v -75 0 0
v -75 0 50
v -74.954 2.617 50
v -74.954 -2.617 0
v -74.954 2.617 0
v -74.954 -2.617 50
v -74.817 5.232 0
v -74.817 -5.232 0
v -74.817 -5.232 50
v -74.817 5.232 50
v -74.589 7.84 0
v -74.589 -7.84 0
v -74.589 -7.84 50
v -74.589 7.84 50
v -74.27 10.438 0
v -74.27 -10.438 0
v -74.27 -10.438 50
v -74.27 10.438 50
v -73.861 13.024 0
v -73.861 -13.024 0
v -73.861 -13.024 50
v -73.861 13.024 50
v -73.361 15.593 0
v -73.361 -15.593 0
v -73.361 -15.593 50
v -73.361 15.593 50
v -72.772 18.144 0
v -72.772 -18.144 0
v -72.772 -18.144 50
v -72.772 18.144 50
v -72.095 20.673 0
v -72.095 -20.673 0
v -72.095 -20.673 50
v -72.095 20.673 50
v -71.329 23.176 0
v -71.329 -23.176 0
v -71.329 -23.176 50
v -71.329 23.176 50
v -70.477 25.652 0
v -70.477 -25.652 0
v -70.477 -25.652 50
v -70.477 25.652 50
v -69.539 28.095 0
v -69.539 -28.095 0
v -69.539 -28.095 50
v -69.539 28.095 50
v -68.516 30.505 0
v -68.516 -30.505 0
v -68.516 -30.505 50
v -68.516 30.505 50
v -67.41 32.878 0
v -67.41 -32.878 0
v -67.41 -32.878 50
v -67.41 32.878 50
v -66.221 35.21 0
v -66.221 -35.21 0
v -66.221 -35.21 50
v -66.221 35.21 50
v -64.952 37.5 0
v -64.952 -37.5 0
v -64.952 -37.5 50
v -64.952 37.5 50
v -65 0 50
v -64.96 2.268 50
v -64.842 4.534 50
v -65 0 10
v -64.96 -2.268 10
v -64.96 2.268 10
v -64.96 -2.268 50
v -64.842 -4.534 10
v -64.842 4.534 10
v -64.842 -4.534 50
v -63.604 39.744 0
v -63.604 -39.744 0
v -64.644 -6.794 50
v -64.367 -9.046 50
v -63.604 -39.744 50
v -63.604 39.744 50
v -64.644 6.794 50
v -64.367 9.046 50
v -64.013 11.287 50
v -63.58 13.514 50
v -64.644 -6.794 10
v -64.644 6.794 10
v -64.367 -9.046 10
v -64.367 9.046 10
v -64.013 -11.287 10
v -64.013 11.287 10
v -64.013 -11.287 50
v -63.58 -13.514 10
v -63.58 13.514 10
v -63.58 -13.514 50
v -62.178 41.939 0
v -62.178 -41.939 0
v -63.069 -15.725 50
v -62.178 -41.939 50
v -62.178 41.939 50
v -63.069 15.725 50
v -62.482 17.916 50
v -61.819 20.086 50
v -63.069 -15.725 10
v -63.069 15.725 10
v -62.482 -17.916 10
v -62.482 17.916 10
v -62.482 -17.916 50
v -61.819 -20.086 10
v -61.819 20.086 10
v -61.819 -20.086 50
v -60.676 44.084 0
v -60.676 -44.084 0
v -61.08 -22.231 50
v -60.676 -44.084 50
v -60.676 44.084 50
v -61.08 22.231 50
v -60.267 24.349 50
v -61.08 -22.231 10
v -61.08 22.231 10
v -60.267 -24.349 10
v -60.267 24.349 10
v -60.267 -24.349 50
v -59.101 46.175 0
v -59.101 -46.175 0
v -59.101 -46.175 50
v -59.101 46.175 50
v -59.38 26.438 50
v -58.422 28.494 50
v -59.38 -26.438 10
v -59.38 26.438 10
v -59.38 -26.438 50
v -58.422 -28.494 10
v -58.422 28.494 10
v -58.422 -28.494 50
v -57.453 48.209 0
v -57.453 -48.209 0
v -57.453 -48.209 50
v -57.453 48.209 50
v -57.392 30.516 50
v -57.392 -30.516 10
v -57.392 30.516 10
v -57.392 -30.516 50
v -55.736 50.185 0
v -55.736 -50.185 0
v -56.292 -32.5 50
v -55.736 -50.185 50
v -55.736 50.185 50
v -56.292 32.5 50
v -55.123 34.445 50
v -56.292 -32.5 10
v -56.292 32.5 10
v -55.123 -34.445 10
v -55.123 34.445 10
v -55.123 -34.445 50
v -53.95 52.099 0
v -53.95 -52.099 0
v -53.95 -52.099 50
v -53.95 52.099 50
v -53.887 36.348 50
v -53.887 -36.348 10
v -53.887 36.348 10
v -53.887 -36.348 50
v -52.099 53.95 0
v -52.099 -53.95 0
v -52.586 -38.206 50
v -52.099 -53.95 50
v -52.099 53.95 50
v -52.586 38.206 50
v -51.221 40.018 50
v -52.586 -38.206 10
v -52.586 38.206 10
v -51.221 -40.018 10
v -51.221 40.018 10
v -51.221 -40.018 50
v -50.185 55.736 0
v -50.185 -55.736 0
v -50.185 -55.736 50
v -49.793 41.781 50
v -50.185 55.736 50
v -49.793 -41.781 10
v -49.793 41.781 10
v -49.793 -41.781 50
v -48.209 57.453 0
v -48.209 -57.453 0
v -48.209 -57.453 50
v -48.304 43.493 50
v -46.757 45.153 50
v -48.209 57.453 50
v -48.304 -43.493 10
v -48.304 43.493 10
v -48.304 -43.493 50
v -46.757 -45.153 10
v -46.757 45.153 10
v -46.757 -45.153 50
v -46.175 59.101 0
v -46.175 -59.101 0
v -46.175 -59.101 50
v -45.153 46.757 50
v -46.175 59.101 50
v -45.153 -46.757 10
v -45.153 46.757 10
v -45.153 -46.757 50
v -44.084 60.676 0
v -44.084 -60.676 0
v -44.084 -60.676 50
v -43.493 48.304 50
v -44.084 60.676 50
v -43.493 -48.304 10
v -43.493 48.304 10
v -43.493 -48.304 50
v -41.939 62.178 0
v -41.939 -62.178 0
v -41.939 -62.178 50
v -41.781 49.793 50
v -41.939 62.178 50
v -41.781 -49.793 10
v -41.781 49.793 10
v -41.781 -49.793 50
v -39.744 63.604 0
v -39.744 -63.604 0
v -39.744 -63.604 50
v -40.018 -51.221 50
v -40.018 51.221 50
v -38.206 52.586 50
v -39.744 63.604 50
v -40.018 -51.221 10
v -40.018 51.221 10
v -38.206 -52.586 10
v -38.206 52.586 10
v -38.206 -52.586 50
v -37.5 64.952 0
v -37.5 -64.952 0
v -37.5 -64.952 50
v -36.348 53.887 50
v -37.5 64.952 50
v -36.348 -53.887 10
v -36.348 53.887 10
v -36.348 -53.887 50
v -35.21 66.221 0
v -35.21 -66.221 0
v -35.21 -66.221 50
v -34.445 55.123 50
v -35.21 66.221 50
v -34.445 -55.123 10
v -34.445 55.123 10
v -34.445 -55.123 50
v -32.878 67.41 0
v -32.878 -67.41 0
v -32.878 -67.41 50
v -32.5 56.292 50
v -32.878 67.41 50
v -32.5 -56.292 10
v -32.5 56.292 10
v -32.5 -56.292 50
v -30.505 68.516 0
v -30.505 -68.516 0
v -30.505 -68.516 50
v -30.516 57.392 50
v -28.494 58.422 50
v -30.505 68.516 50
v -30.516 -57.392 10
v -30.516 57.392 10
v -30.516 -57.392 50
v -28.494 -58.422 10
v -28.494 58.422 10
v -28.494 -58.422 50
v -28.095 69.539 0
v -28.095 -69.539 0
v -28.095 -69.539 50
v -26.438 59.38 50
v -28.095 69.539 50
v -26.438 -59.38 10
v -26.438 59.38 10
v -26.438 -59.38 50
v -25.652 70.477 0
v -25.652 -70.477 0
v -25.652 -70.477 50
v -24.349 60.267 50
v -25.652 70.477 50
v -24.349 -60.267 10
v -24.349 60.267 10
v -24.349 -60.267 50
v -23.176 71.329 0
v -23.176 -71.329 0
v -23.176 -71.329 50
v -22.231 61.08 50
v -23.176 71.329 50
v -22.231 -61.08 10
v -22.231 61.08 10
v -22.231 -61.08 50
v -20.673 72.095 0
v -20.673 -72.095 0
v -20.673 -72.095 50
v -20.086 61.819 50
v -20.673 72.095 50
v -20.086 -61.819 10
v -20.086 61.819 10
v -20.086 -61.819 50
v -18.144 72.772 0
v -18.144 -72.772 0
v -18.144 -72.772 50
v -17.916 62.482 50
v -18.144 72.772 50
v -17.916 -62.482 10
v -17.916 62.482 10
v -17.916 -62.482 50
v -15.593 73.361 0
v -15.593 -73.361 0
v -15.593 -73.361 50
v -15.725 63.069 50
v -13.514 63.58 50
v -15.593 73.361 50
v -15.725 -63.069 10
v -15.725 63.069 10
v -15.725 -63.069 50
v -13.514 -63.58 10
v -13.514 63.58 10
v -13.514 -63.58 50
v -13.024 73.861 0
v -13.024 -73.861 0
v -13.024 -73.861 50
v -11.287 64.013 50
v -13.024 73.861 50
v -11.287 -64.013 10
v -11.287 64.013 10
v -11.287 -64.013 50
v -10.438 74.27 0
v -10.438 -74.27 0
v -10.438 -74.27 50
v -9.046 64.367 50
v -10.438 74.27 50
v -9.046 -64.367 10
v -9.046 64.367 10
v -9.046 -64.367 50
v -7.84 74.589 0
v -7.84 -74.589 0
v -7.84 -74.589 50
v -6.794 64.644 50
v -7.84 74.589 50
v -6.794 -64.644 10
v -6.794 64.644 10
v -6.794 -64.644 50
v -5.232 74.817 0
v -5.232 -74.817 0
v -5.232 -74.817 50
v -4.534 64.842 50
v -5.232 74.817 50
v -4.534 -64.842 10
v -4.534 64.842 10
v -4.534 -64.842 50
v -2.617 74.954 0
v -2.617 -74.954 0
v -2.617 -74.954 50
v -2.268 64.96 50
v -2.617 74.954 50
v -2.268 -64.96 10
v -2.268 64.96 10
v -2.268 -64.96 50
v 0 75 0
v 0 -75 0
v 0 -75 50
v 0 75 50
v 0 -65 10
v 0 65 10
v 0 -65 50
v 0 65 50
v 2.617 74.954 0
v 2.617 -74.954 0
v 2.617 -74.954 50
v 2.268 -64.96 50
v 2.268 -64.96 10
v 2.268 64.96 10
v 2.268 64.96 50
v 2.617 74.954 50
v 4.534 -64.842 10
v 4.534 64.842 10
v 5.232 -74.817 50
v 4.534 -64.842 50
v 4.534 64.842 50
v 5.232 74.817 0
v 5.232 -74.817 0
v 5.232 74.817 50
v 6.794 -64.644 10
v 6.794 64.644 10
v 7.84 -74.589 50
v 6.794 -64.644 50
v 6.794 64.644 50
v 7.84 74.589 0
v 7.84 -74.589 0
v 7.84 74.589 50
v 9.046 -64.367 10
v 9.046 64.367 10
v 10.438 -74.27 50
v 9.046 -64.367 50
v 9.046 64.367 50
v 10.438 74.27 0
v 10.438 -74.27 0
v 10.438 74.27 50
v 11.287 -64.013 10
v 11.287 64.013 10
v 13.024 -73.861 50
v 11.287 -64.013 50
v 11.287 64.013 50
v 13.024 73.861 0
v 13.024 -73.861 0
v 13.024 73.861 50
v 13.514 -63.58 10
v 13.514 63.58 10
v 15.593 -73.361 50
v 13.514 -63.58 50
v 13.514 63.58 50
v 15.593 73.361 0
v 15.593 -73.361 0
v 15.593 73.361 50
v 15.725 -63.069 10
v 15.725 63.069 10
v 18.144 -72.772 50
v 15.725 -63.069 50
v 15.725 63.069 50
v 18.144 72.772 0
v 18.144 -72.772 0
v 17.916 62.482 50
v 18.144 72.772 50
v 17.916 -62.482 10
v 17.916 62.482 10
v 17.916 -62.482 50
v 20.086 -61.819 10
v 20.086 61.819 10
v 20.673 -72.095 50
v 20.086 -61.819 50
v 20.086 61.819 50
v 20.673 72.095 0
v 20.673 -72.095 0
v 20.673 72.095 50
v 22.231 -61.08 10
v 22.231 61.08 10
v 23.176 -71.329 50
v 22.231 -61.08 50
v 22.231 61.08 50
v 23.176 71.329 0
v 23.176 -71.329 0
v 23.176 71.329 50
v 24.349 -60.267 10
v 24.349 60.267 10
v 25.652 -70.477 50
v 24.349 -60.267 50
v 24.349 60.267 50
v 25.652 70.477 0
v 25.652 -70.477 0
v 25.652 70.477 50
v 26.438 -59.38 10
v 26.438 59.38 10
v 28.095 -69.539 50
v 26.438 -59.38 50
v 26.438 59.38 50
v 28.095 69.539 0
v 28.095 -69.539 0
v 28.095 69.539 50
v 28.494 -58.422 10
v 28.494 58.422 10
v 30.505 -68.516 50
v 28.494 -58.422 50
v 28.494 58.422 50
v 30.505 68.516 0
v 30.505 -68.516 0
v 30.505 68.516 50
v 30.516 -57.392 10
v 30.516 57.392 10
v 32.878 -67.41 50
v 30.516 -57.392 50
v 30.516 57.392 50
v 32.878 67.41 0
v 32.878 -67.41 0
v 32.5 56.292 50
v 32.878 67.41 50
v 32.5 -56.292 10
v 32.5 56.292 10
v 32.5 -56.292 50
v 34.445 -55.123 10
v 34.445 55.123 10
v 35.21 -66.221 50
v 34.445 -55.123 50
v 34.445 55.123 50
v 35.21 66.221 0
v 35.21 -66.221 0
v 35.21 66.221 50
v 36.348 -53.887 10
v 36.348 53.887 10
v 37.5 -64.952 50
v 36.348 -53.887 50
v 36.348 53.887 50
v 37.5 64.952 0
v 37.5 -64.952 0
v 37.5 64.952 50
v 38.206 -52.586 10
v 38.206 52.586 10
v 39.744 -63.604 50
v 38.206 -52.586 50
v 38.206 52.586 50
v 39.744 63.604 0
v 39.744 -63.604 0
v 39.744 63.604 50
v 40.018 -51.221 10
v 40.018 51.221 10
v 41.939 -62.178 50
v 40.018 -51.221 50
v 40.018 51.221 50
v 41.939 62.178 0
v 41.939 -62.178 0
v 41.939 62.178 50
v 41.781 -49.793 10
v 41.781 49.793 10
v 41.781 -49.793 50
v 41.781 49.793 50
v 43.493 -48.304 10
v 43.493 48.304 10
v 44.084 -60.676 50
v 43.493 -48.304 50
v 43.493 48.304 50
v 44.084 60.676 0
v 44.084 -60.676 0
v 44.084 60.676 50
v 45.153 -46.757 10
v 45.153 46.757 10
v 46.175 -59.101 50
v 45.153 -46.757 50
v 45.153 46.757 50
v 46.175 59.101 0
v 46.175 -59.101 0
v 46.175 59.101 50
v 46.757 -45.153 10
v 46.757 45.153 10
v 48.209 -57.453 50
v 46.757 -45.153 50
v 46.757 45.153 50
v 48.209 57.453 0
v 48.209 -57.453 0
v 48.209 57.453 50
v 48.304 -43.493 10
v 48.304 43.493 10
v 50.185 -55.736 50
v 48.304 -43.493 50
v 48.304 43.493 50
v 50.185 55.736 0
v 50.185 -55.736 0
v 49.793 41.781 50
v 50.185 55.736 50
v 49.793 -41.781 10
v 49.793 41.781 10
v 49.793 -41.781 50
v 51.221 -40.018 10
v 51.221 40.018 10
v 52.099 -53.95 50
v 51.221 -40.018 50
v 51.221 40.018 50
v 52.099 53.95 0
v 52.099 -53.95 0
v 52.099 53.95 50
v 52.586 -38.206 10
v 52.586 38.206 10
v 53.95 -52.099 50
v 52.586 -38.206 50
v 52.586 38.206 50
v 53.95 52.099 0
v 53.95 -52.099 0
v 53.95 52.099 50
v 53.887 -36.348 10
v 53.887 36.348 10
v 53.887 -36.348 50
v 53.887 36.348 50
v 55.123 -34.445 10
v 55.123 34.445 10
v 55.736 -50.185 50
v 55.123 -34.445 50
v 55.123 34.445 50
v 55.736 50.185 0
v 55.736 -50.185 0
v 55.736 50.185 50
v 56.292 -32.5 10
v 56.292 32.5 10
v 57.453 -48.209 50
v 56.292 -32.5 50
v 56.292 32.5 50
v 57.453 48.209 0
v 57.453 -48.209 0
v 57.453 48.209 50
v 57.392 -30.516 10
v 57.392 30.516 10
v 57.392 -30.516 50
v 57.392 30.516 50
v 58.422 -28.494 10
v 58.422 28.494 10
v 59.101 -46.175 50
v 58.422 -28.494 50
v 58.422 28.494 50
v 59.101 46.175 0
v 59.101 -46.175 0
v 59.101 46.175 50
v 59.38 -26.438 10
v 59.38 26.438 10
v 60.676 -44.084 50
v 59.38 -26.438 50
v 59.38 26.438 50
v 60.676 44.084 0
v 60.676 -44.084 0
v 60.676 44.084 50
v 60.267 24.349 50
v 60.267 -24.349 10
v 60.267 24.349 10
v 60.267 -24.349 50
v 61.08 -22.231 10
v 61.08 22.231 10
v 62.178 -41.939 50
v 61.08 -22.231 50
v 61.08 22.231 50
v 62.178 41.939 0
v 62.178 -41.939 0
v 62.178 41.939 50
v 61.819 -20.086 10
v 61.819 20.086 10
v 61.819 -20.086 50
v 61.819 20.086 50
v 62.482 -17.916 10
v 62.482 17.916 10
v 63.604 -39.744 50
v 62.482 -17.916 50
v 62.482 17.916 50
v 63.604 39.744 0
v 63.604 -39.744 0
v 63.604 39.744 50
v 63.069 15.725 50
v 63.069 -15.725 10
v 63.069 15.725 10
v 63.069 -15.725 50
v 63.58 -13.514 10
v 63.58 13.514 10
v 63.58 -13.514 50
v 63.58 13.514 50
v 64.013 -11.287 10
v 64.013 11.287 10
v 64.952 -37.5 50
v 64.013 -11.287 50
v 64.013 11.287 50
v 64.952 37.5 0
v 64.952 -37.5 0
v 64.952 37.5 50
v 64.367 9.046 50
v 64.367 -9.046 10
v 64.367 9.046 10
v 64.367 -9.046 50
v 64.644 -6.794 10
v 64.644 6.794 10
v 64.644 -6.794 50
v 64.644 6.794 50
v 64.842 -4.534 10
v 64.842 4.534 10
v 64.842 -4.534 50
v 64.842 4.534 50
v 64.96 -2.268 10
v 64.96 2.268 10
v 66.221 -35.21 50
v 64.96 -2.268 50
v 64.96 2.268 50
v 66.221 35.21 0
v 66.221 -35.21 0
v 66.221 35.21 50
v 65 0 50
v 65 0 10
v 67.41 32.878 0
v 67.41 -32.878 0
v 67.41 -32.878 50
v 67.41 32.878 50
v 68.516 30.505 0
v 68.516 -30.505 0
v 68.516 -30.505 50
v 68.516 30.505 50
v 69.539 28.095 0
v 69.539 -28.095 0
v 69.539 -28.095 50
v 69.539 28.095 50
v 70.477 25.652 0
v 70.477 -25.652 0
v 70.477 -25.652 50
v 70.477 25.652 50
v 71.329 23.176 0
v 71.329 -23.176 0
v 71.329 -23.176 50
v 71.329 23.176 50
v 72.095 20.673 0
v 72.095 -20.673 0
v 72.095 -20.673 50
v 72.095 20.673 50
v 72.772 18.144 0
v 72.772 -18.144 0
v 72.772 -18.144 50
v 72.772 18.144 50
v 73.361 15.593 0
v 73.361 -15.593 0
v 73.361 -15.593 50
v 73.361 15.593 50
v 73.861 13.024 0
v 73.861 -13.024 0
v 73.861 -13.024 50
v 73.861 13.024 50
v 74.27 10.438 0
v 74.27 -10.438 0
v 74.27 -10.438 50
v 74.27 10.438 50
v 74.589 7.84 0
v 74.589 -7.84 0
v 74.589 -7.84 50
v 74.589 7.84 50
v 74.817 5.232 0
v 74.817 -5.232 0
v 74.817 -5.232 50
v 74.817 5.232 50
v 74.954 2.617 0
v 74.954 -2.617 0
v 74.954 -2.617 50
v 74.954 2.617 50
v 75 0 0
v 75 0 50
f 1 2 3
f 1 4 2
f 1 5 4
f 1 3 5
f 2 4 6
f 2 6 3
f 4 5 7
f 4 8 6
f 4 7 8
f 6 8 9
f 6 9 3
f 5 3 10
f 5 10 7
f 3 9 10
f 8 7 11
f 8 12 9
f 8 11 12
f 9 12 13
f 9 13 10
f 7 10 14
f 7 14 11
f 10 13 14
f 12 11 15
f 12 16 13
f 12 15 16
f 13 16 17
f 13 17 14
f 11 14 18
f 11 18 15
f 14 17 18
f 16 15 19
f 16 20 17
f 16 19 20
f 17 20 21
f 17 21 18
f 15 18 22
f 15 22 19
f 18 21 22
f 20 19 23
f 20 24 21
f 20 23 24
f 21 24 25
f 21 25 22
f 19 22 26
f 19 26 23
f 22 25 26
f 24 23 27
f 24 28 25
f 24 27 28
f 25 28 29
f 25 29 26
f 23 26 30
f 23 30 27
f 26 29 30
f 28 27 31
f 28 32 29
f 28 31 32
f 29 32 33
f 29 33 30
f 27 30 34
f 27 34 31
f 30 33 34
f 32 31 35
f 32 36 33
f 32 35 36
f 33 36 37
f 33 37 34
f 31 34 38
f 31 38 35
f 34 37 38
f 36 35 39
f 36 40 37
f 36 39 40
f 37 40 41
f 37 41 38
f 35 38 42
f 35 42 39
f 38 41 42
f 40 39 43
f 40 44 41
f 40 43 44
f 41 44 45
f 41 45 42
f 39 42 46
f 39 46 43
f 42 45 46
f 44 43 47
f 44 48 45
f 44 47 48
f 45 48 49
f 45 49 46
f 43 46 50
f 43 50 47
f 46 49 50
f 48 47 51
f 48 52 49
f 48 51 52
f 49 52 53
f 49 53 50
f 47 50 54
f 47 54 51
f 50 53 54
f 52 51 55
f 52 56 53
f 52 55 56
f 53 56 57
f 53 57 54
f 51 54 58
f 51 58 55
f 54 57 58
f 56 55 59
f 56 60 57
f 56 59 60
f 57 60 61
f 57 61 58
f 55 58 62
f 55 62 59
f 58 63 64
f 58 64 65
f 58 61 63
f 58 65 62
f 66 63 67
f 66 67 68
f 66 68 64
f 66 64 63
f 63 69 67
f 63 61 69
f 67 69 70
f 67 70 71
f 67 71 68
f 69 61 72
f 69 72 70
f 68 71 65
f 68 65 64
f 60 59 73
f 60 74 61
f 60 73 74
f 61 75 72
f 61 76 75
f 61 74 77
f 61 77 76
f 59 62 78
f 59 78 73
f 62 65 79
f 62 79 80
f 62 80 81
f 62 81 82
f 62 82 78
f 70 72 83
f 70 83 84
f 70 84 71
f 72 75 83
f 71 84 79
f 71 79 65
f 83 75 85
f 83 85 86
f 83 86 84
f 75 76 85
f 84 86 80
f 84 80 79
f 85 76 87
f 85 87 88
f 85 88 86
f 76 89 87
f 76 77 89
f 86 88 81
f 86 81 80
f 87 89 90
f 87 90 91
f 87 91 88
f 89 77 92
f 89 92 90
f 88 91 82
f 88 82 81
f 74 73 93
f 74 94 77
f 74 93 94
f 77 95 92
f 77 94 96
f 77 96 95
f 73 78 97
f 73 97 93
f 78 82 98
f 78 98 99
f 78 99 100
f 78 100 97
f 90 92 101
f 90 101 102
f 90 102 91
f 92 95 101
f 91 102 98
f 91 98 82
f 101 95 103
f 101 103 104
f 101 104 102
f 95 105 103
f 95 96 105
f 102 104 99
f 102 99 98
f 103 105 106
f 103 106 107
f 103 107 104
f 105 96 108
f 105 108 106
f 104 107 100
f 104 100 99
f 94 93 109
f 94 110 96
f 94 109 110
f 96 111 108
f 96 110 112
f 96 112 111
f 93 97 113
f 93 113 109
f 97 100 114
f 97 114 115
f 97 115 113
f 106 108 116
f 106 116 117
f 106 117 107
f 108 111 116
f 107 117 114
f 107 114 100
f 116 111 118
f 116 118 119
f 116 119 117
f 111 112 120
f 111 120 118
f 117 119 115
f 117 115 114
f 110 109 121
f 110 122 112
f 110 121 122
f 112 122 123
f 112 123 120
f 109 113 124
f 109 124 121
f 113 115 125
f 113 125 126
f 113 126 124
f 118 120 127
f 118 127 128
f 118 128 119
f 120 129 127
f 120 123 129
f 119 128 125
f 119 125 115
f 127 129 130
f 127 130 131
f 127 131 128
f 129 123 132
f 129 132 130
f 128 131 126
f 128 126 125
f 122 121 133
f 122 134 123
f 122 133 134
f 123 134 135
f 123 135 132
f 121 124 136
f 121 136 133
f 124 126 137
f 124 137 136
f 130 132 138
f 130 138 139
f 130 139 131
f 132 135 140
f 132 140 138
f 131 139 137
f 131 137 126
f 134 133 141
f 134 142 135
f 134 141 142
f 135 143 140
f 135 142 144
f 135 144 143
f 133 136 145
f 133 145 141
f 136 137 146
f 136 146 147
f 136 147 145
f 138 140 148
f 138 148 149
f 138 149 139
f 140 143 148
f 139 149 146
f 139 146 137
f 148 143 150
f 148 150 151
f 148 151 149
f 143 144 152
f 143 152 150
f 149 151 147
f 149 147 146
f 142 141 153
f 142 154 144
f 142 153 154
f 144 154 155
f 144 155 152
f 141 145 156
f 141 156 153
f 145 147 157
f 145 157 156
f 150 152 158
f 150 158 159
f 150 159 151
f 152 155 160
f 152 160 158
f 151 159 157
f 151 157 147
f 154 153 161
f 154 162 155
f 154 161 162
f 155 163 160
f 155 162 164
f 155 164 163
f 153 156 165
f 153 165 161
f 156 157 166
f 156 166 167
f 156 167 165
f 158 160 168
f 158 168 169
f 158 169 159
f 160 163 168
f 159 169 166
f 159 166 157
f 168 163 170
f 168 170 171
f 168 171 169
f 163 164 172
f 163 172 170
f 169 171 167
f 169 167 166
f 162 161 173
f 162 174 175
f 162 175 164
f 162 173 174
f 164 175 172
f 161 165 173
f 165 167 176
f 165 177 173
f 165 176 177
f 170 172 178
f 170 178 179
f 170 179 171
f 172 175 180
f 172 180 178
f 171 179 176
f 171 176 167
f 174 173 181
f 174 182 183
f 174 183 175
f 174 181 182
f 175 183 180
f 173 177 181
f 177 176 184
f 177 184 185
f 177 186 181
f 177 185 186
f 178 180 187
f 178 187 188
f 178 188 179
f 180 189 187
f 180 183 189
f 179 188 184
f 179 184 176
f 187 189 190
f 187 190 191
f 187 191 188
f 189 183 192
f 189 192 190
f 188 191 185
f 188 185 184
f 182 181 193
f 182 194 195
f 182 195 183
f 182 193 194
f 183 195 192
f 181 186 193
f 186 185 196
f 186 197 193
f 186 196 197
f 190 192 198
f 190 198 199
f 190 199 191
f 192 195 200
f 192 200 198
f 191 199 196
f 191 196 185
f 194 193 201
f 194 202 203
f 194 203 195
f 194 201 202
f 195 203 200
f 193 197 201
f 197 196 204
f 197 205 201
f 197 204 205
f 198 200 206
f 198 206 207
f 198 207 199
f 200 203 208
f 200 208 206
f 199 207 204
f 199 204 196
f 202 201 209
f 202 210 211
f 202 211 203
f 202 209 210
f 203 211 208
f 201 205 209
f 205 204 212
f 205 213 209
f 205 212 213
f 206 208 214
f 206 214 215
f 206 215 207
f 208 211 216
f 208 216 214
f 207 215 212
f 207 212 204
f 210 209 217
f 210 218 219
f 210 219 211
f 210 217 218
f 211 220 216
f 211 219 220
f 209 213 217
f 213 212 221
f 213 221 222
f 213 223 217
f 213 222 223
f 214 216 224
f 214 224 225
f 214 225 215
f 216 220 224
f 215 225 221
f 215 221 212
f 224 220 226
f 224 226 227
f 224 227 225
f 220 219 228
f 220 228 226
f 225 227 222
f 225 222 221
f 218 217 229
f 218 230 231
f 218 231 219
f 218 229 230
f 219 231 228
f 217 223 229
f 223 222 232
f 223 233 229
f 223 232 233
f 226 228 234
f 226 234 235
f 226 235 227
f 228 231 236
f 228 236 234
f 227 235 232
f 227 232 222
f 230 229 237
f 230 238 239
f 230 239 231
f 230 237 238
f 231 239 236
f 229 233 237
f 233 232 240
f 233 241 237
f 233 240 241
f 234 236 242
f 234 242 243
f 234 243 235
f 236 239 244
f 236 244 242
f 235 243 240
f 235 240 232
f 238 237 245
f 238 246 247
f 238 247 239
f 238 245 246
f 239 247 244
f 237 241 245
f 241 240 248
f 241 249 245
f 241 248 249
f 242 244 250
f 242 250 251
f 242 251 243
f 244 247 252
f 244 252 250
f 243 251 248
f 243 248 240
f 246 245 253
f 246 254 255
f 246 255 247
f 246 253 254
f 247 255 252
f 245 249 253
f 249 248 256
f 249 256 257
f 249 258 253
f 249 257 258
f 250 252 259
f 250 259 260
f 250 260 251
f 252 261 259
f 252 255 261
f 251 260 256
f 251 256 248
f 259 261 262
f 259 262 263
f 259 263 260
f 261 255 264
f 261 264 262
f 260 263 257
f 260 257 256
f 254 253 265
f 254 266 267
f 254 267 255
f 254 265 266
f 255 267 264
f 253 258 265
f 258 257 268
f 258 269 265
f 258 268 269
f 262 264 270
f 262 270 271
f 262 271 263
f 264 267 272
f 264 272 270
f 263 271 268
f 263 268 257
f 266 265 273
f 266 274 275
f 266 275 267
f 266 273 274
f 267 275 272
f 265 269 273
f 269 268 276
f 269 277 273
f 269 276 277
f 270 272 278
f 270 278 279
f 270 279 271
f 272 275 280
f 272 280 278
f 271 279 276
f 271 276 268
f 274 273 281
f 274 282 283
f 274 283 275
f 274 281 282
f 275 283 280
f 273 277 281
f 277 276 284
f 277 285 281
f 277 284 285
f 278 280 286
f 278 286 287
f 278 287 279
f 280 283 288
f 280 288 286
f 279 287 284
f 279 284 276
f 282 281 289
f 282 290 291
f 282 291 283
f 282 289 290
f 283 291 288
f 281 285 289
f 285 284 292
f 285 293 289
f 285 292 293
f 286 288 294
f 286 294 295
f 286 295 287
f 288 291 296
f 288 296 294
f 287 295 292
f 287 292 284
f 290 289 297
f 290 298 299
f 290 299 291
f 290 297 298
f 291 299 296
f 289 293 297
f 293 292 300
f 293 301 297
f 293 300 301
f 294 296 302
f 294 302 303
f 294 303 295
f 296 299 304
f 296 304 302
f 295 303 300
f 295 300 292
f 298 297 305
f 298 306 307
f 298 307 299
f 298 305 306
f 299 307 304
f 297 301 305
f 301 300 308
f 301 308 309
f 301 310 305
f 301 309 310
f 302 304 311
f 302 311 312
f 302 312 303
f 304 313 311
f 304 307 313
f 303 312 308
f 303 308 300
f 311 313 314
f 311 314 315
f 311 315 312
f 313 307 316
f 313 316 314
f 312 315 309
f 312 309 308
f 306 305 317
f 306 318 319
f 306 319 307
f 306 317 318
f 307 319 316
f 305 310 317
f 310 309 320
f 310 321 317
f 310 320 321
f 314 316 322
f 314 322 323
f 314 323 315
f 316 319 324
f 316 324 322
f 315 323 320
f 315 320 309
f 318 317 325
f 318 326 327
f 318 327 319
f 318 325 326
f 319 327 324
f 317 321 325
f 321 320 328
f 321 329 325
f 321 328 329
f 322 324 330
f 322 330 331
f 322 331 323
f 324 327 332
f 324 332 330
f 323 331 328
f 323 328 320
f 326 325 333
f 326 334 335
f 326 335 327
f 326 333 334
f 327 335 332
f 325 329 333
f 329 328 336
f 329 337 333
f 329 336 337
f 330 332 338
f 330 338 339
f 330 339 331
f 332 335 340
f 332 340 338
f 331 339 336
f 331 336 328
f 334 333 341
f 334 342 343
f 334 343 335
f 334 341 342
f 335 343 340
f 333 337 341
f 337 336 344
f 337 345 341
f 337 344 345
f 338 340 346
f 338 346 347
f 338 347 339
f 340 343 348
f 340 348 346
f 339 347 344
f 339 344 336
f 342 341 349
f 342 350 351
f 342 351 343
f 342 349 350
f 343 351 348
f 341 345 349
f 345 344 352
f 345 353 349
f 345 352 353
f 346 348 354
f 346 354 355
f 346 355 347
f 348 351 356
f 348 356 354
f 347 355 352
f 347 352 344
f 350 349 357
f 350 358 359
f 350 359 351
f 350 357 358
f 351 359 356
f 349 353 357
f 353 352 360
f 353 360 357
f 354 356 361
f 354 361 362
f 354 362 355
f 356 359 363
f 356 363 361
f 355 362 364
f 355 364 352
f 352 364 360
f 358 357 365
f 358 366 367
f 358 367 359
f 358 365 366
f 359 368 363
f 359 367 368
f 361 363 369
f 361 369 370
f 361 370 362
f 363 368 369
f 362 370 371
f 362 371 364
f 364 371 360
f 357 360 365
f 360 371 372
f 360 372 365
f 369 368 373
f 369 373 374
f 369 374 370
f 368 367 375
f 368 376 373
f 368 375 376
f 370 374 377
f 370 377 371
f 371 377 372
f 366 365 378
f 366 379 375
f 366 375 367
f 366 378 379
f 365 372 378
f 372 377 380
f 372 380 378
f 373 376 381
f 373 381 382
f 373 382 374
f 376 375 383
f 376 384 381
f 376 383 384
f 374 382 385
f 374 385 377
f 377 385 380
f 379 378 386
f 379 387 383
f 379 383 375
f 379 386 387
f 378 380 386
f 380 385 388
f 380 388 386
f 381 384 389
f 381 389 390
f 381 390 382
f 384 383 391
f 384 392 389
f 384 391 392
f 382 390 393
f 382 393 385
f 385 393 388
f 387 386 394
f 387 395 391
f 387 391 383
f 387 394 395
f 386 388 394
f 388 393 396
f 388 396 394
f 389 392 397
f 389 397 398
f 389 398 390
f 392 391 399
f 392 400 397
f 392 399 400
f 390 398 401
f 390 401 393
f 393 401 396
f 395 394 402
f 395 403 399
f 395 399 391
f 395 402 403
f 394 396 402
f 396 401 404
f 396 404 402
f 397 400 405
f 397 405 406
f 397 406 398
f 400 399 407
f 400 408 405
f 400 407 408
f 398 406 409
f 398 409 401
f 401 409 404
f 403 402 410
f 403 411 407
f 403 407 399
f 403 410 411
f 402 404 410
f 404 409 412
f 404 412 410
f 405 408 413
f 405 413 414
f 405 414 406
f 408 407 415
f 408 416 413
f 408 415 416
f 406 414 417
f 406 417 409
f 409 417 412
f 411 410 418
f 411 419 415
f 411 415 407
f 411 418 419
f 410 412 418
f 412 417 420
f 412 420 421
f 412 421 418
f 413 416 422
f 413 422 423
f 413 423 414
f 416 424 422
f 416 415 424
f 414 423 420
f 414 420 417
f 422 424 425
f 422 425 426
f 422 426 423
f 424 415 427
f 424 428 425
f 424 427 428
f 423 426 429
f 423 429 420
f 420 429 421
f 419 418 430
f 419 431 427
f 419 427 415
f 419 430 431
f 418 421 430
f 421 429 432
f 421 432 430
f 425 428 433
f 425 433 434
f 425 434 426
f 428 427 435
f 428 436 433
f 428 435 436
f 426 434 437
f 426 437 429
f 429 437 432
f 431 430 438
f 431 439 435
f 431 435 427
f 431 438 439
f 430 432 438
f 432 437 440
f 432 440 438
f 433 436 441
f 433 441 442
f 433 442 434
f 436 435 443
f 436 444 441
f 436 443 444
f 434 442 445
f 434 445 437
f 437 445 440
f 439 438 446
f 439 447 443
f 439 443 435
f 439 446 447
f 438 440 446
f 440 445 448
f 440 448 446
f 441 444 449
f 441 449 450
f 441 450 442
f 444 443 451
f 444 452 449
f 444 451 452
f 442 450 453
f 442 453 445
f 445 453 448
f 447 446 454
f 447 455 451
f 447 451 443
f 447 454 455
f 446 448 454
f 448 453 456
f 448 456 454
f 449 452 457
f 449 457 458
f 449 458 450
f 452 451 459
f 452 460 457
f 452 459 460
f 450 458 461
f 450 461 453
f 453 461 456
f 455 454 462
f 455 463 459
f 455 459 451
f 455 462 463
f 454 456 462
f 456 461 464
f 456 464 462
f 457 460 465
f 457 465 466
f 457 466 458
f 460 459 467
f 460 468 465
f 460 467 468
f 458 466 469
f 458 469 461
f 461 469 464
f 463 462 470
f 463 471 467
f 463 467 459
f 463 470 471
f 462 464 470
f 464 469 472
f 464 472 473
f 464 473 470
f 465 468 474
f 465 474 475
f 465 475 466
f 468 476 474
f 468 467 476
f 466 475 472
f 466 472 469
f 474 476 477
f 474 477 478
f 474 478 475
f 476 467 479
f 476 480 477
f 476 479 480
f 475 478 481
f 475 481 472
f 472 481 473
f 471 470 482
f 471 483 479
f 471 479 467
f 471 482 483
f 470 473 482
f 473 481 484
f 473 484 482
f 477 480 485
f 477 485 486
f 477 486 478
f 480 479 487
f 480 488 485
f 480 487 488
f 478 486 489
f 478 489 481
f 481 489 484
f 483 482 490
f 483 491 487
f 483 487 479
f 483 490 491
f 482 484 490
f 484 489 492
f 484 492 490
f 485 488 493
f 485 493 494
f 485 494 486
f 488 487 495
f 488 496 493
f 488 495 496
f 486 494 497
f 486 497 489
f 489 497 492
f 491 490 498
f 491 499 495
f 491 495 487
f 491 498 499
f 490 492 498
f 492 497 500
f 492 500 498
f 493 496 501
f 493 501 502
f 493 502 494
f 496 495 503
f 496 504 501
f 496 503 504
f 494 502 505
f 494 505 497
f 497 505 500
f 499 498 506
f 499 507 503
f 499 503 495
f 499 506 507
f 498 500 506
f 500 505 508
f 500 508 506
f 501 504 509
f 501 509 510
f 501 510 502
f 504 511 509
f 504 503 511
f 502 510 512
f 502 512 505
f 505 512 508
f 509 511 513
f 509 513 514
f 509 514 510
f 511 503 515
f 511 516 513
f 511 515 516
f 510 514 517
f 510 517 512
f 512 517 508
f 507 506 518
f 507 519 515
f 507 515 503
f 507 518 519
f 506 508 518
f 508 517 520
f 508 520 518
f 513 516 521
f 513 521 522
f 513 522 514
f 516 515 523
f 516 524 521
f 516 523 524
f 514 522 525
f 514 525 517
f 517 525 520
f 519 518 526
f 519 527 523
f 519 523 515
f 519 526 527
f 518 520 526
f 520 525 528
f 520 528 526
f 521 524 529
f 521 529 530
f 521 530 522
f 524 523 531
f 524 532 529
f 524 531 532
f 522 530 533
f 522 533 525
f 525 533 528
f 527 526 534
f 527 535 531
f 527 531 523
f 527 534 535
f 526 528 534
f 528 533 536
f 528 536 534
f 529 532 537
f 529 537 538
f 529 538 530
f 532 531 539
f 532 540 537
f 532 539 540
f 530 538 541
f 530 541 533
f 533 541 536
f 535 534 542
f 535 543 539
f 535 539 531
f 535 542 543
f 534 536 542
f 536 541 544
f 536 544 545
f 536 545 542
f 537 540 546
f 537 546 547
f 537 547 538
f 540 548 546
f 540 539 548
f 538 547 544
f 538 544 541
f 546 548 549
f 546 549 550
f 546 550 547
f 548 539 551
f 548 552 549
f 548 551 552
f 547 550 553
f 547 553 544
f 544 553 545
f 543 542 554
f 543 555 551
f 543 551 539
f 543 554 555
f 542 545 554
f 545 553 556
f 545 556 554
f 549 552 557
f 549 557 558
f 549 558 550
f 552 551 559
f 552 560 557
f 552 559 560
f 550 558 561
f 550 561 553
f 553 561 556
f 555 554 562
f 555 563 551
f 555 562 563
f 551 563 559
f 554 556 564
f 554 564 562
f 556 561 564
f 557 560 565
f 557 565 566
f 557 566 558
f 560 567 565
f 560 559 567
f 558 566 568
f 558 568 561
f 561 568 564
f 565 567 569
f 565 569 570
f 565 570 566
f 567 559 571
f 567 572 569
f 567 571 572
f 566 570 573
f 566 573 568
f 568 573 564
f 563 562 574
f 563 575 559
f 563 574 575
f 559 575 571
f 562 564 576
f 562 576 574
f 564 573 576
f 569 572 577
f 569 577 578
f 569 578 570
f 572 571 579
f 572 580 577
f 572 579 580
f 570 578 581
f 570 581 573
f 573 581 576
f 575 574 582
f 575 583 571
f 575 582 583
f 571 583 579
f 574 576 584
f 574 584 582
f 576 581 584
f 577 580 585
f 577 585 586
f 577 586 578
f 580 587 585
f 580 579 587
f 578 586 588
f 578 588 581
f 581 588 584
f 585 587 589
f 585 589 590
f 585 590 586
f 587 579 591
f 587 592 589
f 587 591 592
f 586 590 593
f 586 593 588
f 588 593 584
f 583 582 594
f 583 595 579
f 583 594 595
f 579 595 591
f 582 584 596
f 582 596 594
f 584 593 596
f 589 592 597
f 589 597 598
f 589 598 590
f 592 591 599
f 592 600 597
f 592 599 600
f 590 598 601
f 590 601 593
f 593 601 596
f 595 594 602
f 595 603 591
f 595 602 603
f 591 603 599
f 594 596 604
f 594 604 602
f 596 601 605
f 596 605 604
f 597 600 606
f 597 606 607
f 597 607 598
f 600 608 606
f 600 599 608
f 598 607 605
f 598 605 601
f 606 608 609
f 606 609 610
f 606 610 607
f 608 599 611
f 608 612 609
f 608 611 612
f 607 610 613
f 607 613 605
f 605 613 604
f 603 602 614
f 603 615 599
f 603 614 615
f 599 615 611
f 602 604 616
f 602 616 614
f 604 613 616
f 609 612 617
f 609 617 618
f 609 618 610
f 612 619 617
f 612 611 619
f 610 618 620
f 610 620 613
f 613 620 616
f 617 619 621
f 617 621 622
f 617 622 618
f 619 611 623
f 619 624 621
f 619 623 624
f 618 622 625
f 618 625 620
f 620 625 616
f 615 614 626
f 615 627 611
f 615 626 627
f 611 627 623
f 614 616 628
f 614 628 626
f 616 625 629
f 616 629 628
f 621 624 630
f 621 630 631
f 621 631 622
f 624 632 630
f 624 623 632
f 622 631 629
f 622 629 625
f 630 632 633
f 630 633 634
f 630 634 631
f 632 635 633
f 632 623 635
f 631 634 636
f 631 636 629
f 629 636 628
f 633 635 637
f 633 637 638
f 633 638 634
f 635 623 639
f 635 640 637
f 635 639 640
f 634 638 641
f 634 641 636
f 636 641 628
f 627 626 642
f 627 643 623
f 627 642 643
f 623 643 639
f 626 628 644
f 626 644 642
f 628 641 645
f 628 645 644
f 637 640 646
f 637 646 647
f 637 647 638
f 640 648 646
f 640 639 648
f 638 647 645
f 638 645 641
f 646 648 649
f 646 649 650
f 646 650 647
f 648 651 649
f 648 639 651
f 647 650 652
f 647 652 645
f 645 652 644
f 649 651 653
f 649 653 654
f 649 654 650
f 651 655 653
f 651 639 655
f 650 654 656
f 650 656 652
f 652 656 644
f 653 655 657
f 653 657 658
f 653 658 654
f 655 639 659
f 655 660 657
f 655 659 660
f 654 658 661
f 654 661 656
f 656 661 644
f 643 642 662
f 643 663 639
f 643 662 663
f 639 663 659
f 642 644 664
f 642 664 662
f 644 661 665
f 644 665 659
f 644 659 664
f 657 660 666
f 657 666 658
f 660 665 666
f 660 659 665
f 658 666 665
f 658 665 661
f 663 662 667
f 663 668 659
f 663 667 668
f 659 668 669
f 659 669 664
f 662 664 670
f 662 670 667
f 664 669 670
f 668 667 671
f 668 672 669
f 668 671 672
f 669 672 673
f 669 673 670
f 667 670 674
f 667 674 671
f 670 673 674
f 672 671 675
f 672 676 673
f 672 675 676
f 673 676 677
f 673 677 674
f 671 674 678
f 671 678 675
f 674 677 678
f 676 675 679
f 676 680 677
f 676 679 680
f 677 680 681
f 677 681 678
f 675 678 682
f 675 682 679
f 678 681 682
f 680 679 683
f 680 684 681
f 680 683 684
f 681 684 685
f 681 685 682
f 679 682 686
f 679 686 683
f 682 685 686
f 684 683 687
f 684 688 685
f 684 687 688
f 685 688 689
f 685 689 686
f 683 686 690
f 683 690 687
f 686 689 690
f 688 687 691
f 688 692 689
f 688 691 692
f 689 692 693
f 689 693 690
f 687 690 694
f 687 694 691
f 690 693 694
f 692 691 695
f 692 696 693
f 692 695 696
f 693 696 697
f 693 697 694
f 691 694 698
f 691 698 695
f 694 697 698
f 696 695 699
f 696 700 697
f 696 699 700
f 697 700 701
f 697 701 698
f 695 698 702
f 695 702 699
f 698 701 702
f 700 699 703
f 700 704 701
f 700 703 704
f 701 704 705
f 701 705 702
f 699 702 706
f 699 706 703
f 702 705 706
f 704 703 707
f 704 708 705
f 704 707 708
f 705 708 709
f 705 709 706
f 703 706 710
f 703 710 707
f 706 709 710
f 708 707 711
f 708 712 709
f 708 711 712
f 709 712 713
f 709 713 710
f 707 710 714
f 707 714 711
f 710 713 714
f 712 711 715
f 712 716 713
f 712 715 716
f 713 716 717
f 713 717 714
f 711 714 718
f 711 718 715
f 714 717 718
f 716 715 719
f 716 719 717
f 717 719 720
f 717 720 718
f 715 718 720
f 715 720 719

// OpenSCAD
// =============================================================================
//  CAROUSEL BASE -- the hollow part on its own: Ø15 cm, 5 cm tall, open at the top
// =============================================================================
//  A cup: Ø13 cm inside, 4 cm deep, on a 1 cm floor. The 1.5 cm deck disc sits
//  on it, and the two together are the 6.5 cm carousel in cake_mockup.scad.
//  The same part as "carousel base" in carousel_parts.solidcraft.json, standing
//  on Z 0. Its sizes (carousel_d, carousel_h, deck_h, base_wall, base_depth)
//  live in cake_mockup.scad, so the files never disagree: edit them there.
//  Three are needed.
//
//      openscad carousel_base.scad
//      openscad -o carousel_base.stl carousel_base.scad
// =============================================================================

include <cake_mockup.scad>

part = "base";   // overrides the include's "stack": the last assignment wins
